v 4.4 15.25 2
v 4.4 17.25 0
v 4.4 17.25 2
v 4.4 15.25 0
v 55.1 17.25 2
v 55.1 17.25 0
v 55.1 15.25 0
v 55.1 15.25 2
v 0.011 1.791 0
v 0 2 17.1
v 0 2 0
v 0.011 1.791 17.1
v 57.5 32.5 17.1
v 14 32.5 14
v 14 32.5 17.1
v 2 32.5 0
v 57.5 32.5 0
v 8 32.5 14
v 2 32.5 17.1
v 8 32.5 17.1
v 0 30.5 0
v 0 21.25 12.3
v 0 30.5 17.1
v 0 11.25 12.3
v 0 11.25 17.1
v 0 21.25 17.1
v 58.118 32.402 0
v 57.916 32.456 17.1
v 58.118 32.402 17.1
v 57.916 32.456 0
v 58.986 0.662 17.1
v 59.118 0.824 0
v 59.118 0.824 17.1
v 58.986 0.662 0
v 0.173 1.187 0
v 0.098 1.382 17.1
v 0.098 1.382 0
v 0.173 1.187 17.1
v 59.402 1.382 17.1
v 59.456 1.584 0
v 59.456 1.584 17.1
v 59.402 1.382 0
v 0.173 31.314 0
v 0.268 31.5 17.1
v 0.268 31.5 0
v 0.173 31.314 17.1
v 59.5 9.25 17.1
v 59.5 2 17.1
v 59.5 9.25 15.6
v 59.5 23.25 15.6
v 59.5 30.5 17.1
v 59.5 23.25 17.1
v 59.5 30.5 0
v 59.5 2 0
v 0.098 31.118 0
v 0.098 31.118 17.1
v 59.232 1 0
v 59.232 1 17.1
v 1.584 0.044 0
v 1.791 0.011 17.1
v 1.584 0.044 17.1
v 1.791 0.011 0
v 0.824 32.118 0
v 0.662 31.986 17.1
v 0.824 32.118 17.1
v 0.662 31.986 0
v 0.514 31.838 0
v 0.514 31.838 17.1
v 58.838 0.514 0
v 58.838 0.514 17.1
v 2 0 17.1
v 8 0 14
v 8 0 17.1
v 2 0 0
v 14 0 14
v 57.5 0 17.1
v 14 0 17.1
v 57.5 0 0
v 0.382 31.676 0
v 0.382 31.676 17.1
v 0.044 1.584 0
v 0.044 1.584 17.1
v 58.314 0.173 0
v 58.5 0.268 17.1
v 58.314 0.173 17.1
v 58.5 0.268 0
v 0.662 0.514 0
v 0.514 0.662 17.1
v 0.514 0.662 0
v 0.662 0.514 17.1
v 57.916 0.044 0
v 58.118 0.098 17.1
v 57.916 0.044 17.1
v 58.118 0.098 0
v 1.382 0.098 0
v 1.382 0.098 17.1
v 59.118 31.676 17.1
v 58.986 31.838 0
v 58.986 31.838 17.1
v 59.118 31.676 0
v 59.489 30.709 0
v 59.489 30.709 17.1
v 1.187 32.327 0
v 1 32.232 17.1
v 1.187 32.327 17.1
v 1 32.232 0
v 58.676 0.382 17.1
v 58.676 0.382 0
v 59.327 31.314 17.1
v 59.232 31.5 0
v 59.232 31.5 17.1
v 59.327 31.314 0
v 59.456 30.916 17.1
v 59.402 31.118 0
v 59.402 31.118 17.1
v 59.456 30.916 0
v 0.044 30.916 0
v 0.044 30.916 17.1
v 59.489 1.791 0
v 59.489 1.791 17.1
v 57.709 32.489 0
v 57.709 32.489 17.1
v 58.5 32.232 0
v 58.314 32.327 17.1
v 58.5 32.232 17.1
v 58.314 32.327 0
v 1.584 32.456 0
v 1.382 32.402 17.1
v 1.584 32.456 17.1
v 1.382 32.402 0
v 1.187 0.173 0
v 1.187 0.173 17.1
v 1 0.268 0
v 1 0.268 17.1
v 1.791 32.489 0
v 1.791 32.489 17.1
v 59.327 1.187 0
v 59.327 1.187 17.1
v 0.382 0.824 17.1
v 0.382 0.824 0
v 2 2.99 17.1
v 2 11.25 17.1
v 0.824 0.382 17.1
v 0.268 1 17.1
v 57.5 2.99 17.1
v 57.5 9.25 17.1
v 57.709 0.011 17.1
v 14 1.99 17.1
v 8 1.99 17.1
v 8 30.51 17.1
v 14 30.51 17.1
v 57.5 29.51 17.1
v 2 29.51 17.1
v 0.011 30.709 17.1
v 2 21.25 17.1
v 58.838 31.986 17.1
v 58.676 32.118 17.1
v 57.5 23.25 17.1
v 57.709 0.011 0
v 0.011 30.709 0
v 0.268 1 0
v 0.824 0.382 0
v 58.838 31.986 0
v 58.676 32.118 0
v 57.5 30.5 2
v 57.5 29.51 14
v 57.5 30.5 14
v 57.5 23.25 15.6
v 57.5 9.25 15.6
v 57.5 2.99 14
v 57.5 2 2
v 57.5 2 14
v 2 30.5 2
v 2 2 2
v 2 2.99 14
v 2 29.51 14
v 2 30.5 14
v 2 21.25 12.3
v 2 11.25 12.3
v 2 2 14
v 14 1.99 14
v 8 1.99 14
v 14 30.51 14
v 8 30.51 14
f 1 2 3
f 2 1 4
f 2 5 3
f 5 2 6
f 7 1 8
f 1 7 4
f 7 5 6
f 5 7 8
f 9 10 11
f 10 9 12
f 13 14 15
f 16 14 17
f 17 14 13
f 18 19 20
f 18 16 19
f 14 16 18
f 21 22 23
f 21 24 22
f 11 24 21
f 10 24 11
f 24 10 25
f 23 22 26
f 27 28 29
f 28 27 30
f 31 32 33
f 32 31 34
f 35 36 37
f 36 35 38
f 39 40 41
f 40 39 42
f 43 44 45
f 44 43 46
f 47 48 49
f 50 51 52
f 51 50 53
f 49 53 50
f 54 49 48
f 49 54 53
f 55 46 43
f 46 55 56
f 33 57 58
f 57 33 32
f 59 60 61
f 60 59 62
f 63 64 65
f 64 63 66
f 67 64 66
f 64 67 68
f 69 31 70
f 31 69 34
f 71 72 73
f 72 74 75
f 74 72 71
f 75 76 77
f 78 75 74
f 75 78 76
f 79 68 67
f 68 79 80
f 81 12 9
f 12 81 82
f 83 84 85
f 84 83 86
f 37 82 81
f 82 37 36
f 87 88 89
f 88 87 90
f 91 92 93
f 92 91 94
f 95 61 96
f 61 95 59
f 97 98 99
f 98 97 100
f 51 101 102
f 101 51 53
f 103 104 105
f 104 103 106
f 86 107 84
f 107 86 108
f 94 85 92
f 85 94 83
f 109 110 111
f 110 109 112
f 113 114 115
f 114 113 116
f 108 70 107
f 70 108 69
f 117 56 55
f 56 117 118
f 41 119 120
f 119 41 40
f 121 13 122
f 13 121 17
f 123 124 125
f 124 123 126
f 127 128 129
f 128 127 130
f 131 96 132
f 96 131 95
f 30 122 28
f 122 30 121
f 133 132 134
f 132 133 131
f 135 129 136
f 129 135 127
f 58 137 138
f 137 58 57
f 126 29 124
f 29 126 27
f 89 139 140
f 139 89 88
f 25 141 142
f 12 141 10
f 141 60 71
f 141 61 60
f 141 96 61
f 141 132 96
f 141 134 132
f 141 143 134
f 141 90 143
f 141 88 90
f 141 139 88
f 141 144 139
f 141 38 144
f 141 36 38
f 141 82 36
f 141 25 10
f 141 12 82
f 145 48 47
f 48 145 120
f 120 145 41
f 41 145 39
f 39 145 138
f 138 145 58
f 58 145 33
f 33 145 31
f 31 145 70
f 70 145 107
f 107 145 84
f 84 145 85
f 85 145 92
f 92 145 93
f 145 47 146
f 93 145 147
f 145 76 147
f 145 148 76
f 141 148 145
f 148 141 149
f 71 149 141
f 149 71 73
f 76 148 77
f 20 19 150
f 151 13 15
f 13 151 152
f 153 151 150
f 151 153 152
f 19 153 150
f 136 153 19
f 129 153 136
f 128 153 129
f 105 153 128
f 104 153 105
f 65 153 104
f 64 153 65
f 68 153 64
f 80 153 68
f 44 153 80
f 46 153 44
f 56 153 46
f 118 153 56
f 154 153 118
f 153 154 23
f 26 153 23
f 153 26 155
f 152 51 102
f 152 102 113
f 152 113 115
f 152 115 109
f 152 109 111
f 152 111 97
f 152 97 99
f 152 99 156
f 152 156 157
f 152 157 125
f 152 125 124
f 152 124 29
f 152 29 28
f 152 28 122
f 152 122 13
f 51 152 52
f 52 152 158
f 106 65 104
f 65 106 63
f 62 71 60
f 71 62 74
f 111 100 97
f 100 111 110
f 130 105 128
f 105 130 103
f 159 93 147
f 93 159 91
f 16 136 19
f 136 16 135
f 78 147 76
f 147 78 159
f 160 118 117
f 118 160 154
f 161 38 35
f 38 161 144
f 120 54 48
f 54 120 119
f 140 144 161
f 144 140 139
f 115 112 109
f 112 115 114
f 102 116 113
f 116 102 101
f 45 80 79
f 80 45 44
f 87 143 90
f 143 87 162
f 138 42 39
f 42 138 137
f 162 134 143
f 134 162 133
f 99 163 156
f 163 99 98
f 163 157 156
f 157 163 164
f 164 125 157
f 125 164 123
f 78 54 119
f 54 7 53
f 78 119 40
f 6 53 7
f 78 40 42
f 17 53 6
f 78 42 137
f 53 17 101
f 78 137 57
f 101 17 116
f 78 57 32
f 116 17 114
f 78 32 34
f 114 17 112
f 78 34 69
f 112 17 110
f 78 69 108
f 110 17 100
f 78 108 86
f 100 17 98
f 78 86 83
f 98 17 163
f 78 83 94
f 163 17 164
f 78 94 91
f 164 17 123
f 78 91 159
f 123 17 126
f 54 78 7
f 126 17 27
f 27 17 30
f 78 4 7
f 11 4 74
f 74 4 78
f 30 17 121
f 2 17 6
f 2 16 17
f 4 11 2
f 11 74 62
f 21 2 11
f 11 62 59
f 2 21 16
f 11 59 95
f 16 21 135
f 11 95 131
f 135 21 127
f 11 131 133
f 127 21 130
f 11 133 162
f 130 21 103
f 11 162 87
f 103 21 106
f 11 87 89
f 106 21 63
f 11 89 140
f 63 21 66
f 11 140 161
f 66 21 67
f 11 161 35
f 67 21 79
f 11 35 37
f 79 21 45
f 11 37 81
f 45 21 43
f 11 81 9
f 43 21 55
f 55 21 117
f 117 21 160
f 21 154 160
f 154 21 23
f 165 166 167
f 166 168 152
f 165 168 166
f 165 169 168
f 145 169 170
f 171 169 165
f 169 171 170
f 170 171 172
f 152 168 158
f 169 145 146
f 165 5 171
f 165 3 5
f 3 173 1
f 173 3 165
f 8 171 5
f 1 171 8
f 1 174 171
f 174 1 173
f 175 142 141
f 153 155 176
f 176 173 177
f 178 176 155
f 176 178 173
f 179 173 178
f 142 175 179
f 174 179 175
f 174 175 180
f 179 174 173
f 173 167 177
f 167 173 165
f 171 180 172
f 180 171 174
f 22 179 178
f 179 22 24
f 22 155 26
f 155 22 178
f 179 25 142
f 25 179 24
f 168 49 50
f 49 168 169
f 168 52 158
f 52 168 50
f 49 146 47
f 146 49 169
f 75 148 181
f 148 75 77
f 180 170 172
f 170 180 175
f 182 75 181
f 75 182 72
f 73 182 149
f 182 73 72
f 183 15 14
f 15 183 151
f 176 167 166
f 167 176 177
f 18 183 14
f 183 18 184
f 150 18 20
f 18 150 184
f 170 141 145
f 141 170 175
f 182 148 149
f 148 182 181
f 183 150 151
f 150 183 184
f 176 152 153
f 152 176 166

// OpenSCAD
// ============================================================
// ESP32 Closet Monitor — Main Enclosure
// ============================================================
// Design: side-grip cradle, USB-C accessible, BOOT/EN buttons
// reachable, flat back for 3M VHB tape mounting.
//
// Board: Teyleten ESP32-WROOM-32 38-pin USB-C
//   Length: ~55mm
//   Width:  ~28mm
//   Height: ~13mm (including stacked pin headers below)
//
// Print: PETG, 0.2mm layer, 30% infill, no supports needed
// ============================================================

// ---------- TUNABLE PARAMETERS ----------
$fn = 60;  // smoothness of curves

// Board dimensions (with small clearance)
board_length = 55.5;
board_width  = 28.5;
board_thick  = 1.6;     // PCB only
pin_clearance = 12;     // space below board for pin headers

// Wall thickness
wall = 2.0;

// Side rails that grip the PCB
rail_height = 1.5;      // how much the rail sticks up over the PCB top
rail_grip   = 1.0;      // how far the rail extends inward over the PCB

// USB-C cutout (left end of board)
usb_width  = 10;
usb_height = 5;
usb_y_offset = 0;       // centered on board height

// Cable exit slot for the 4 sensor jumper wires (right end)
cable_slot_width  = 14;
cable_slot_height = 6;

// Button access cutouts (BOOT and EN are on opposite sides near the USB end)
button_cutout_width  = 6;
button_cutout_height = 5;
button_y_from_usb_end = 8;  // approx distance from USB end to buttons

// Vent slots on the bottom (so heat from the regulator can escape)
vent_count = 4;
vent_width = 2;
vent_length = 15;

// ---------- DERIVED ----------
inner_length = board_length;
inner_width  = board_width;
outer_length = inner_length + (2 * wall);
outer_width  = inner_width  + (2 * wall);
outer_height = pin_clearance + board_thick + rail_height + wall;

// ============================================================
// MAIN BODY
// ============================================================
module esp32_case() {
    difference() {
        // Solid outer shell
        rounded_box(outer_length, outer_width, outer_height, r=2);

        // Hollow out the interior cavity (where pin headers live)
        translate([wall, wall, wall])
            cube([inner_length, inner_width, pin_clearance + board_thick + rail_height + 1]);

        // USB-C cutout (one end)
        translate([-1, (outer_width - usb_width) / 2, wall + pin_clearance + (board_thick - usb_height)/2])
            cube([wall + 2, usb_width, usb_height + 2]);

        // Cable exit slot (opposite end, raised so wires exit above the PCB)
        translate([outer_length - wall - 1, (outer_width - cable_slot_width)/2, wall + pin_clearance + board_thick])
            cube([wall + 2, cable_slot_width, cable_slot_height]);

        // BOOT button access (one side, near USB end)
        translate([button_y_from_usb_end, -1, wall + pin_clearance])
            cube([button_cutout_width, wall + 2, button_cutout_height]);

        // EN button access (opposite side, near USB end)
        translate([button_y_from_usb_end, outer_width - wall - 1, wall + pin_clearance])
            cube([button_cutout_width, wall + 2, button_cutout_height]);

        // Bottom vent slots (for AMS1117 voltage regulator heat)
        for (i = [0 : vent_count - 1]) {
            x_pos = (outer_length / (vent_count + 1)) * (i + 1) - vent_length/2;
            translate([x_pos, (outer_width - vent_width)/2, -1])
                cube([vent_length, vent_width, wall + 2]);
        }
    }

    // ---------- INTERNAL SIDE RAILS THAT GRIP THE PCB ----------
    // The PCB rests on these ledges; the lip above holds it down
    rail_z = wall + pin_clearance;

    // Long-edge rails (front and back of the cradle)
    translate([wall, wall - 0.01, rail_z])
        side_rail(inner_length, rail_grip, board_thick + rail_height);

    translate([wall, outer_width - wall - rail_grip + 0.01, rail_z])
        side_rail(inner_length, rail_grip, board_thick + rail_height);
}

// A side rail that the PCB edge slides into
module side_rail(length, depth, height) {
    cube([length, depth, height]);
}

// Rounded box helper
module rounded_box(l, w, h, r=2) {
    hull() {
        for (x = [r, l - r]) {
            for (y = [r, w - r]) {
                translate([x, y, 0])
                    cylinder(h=h, r=r);
            }
        }
    }
}

// ============================================================
// RENDER
// ============================================================
esp32_case();
